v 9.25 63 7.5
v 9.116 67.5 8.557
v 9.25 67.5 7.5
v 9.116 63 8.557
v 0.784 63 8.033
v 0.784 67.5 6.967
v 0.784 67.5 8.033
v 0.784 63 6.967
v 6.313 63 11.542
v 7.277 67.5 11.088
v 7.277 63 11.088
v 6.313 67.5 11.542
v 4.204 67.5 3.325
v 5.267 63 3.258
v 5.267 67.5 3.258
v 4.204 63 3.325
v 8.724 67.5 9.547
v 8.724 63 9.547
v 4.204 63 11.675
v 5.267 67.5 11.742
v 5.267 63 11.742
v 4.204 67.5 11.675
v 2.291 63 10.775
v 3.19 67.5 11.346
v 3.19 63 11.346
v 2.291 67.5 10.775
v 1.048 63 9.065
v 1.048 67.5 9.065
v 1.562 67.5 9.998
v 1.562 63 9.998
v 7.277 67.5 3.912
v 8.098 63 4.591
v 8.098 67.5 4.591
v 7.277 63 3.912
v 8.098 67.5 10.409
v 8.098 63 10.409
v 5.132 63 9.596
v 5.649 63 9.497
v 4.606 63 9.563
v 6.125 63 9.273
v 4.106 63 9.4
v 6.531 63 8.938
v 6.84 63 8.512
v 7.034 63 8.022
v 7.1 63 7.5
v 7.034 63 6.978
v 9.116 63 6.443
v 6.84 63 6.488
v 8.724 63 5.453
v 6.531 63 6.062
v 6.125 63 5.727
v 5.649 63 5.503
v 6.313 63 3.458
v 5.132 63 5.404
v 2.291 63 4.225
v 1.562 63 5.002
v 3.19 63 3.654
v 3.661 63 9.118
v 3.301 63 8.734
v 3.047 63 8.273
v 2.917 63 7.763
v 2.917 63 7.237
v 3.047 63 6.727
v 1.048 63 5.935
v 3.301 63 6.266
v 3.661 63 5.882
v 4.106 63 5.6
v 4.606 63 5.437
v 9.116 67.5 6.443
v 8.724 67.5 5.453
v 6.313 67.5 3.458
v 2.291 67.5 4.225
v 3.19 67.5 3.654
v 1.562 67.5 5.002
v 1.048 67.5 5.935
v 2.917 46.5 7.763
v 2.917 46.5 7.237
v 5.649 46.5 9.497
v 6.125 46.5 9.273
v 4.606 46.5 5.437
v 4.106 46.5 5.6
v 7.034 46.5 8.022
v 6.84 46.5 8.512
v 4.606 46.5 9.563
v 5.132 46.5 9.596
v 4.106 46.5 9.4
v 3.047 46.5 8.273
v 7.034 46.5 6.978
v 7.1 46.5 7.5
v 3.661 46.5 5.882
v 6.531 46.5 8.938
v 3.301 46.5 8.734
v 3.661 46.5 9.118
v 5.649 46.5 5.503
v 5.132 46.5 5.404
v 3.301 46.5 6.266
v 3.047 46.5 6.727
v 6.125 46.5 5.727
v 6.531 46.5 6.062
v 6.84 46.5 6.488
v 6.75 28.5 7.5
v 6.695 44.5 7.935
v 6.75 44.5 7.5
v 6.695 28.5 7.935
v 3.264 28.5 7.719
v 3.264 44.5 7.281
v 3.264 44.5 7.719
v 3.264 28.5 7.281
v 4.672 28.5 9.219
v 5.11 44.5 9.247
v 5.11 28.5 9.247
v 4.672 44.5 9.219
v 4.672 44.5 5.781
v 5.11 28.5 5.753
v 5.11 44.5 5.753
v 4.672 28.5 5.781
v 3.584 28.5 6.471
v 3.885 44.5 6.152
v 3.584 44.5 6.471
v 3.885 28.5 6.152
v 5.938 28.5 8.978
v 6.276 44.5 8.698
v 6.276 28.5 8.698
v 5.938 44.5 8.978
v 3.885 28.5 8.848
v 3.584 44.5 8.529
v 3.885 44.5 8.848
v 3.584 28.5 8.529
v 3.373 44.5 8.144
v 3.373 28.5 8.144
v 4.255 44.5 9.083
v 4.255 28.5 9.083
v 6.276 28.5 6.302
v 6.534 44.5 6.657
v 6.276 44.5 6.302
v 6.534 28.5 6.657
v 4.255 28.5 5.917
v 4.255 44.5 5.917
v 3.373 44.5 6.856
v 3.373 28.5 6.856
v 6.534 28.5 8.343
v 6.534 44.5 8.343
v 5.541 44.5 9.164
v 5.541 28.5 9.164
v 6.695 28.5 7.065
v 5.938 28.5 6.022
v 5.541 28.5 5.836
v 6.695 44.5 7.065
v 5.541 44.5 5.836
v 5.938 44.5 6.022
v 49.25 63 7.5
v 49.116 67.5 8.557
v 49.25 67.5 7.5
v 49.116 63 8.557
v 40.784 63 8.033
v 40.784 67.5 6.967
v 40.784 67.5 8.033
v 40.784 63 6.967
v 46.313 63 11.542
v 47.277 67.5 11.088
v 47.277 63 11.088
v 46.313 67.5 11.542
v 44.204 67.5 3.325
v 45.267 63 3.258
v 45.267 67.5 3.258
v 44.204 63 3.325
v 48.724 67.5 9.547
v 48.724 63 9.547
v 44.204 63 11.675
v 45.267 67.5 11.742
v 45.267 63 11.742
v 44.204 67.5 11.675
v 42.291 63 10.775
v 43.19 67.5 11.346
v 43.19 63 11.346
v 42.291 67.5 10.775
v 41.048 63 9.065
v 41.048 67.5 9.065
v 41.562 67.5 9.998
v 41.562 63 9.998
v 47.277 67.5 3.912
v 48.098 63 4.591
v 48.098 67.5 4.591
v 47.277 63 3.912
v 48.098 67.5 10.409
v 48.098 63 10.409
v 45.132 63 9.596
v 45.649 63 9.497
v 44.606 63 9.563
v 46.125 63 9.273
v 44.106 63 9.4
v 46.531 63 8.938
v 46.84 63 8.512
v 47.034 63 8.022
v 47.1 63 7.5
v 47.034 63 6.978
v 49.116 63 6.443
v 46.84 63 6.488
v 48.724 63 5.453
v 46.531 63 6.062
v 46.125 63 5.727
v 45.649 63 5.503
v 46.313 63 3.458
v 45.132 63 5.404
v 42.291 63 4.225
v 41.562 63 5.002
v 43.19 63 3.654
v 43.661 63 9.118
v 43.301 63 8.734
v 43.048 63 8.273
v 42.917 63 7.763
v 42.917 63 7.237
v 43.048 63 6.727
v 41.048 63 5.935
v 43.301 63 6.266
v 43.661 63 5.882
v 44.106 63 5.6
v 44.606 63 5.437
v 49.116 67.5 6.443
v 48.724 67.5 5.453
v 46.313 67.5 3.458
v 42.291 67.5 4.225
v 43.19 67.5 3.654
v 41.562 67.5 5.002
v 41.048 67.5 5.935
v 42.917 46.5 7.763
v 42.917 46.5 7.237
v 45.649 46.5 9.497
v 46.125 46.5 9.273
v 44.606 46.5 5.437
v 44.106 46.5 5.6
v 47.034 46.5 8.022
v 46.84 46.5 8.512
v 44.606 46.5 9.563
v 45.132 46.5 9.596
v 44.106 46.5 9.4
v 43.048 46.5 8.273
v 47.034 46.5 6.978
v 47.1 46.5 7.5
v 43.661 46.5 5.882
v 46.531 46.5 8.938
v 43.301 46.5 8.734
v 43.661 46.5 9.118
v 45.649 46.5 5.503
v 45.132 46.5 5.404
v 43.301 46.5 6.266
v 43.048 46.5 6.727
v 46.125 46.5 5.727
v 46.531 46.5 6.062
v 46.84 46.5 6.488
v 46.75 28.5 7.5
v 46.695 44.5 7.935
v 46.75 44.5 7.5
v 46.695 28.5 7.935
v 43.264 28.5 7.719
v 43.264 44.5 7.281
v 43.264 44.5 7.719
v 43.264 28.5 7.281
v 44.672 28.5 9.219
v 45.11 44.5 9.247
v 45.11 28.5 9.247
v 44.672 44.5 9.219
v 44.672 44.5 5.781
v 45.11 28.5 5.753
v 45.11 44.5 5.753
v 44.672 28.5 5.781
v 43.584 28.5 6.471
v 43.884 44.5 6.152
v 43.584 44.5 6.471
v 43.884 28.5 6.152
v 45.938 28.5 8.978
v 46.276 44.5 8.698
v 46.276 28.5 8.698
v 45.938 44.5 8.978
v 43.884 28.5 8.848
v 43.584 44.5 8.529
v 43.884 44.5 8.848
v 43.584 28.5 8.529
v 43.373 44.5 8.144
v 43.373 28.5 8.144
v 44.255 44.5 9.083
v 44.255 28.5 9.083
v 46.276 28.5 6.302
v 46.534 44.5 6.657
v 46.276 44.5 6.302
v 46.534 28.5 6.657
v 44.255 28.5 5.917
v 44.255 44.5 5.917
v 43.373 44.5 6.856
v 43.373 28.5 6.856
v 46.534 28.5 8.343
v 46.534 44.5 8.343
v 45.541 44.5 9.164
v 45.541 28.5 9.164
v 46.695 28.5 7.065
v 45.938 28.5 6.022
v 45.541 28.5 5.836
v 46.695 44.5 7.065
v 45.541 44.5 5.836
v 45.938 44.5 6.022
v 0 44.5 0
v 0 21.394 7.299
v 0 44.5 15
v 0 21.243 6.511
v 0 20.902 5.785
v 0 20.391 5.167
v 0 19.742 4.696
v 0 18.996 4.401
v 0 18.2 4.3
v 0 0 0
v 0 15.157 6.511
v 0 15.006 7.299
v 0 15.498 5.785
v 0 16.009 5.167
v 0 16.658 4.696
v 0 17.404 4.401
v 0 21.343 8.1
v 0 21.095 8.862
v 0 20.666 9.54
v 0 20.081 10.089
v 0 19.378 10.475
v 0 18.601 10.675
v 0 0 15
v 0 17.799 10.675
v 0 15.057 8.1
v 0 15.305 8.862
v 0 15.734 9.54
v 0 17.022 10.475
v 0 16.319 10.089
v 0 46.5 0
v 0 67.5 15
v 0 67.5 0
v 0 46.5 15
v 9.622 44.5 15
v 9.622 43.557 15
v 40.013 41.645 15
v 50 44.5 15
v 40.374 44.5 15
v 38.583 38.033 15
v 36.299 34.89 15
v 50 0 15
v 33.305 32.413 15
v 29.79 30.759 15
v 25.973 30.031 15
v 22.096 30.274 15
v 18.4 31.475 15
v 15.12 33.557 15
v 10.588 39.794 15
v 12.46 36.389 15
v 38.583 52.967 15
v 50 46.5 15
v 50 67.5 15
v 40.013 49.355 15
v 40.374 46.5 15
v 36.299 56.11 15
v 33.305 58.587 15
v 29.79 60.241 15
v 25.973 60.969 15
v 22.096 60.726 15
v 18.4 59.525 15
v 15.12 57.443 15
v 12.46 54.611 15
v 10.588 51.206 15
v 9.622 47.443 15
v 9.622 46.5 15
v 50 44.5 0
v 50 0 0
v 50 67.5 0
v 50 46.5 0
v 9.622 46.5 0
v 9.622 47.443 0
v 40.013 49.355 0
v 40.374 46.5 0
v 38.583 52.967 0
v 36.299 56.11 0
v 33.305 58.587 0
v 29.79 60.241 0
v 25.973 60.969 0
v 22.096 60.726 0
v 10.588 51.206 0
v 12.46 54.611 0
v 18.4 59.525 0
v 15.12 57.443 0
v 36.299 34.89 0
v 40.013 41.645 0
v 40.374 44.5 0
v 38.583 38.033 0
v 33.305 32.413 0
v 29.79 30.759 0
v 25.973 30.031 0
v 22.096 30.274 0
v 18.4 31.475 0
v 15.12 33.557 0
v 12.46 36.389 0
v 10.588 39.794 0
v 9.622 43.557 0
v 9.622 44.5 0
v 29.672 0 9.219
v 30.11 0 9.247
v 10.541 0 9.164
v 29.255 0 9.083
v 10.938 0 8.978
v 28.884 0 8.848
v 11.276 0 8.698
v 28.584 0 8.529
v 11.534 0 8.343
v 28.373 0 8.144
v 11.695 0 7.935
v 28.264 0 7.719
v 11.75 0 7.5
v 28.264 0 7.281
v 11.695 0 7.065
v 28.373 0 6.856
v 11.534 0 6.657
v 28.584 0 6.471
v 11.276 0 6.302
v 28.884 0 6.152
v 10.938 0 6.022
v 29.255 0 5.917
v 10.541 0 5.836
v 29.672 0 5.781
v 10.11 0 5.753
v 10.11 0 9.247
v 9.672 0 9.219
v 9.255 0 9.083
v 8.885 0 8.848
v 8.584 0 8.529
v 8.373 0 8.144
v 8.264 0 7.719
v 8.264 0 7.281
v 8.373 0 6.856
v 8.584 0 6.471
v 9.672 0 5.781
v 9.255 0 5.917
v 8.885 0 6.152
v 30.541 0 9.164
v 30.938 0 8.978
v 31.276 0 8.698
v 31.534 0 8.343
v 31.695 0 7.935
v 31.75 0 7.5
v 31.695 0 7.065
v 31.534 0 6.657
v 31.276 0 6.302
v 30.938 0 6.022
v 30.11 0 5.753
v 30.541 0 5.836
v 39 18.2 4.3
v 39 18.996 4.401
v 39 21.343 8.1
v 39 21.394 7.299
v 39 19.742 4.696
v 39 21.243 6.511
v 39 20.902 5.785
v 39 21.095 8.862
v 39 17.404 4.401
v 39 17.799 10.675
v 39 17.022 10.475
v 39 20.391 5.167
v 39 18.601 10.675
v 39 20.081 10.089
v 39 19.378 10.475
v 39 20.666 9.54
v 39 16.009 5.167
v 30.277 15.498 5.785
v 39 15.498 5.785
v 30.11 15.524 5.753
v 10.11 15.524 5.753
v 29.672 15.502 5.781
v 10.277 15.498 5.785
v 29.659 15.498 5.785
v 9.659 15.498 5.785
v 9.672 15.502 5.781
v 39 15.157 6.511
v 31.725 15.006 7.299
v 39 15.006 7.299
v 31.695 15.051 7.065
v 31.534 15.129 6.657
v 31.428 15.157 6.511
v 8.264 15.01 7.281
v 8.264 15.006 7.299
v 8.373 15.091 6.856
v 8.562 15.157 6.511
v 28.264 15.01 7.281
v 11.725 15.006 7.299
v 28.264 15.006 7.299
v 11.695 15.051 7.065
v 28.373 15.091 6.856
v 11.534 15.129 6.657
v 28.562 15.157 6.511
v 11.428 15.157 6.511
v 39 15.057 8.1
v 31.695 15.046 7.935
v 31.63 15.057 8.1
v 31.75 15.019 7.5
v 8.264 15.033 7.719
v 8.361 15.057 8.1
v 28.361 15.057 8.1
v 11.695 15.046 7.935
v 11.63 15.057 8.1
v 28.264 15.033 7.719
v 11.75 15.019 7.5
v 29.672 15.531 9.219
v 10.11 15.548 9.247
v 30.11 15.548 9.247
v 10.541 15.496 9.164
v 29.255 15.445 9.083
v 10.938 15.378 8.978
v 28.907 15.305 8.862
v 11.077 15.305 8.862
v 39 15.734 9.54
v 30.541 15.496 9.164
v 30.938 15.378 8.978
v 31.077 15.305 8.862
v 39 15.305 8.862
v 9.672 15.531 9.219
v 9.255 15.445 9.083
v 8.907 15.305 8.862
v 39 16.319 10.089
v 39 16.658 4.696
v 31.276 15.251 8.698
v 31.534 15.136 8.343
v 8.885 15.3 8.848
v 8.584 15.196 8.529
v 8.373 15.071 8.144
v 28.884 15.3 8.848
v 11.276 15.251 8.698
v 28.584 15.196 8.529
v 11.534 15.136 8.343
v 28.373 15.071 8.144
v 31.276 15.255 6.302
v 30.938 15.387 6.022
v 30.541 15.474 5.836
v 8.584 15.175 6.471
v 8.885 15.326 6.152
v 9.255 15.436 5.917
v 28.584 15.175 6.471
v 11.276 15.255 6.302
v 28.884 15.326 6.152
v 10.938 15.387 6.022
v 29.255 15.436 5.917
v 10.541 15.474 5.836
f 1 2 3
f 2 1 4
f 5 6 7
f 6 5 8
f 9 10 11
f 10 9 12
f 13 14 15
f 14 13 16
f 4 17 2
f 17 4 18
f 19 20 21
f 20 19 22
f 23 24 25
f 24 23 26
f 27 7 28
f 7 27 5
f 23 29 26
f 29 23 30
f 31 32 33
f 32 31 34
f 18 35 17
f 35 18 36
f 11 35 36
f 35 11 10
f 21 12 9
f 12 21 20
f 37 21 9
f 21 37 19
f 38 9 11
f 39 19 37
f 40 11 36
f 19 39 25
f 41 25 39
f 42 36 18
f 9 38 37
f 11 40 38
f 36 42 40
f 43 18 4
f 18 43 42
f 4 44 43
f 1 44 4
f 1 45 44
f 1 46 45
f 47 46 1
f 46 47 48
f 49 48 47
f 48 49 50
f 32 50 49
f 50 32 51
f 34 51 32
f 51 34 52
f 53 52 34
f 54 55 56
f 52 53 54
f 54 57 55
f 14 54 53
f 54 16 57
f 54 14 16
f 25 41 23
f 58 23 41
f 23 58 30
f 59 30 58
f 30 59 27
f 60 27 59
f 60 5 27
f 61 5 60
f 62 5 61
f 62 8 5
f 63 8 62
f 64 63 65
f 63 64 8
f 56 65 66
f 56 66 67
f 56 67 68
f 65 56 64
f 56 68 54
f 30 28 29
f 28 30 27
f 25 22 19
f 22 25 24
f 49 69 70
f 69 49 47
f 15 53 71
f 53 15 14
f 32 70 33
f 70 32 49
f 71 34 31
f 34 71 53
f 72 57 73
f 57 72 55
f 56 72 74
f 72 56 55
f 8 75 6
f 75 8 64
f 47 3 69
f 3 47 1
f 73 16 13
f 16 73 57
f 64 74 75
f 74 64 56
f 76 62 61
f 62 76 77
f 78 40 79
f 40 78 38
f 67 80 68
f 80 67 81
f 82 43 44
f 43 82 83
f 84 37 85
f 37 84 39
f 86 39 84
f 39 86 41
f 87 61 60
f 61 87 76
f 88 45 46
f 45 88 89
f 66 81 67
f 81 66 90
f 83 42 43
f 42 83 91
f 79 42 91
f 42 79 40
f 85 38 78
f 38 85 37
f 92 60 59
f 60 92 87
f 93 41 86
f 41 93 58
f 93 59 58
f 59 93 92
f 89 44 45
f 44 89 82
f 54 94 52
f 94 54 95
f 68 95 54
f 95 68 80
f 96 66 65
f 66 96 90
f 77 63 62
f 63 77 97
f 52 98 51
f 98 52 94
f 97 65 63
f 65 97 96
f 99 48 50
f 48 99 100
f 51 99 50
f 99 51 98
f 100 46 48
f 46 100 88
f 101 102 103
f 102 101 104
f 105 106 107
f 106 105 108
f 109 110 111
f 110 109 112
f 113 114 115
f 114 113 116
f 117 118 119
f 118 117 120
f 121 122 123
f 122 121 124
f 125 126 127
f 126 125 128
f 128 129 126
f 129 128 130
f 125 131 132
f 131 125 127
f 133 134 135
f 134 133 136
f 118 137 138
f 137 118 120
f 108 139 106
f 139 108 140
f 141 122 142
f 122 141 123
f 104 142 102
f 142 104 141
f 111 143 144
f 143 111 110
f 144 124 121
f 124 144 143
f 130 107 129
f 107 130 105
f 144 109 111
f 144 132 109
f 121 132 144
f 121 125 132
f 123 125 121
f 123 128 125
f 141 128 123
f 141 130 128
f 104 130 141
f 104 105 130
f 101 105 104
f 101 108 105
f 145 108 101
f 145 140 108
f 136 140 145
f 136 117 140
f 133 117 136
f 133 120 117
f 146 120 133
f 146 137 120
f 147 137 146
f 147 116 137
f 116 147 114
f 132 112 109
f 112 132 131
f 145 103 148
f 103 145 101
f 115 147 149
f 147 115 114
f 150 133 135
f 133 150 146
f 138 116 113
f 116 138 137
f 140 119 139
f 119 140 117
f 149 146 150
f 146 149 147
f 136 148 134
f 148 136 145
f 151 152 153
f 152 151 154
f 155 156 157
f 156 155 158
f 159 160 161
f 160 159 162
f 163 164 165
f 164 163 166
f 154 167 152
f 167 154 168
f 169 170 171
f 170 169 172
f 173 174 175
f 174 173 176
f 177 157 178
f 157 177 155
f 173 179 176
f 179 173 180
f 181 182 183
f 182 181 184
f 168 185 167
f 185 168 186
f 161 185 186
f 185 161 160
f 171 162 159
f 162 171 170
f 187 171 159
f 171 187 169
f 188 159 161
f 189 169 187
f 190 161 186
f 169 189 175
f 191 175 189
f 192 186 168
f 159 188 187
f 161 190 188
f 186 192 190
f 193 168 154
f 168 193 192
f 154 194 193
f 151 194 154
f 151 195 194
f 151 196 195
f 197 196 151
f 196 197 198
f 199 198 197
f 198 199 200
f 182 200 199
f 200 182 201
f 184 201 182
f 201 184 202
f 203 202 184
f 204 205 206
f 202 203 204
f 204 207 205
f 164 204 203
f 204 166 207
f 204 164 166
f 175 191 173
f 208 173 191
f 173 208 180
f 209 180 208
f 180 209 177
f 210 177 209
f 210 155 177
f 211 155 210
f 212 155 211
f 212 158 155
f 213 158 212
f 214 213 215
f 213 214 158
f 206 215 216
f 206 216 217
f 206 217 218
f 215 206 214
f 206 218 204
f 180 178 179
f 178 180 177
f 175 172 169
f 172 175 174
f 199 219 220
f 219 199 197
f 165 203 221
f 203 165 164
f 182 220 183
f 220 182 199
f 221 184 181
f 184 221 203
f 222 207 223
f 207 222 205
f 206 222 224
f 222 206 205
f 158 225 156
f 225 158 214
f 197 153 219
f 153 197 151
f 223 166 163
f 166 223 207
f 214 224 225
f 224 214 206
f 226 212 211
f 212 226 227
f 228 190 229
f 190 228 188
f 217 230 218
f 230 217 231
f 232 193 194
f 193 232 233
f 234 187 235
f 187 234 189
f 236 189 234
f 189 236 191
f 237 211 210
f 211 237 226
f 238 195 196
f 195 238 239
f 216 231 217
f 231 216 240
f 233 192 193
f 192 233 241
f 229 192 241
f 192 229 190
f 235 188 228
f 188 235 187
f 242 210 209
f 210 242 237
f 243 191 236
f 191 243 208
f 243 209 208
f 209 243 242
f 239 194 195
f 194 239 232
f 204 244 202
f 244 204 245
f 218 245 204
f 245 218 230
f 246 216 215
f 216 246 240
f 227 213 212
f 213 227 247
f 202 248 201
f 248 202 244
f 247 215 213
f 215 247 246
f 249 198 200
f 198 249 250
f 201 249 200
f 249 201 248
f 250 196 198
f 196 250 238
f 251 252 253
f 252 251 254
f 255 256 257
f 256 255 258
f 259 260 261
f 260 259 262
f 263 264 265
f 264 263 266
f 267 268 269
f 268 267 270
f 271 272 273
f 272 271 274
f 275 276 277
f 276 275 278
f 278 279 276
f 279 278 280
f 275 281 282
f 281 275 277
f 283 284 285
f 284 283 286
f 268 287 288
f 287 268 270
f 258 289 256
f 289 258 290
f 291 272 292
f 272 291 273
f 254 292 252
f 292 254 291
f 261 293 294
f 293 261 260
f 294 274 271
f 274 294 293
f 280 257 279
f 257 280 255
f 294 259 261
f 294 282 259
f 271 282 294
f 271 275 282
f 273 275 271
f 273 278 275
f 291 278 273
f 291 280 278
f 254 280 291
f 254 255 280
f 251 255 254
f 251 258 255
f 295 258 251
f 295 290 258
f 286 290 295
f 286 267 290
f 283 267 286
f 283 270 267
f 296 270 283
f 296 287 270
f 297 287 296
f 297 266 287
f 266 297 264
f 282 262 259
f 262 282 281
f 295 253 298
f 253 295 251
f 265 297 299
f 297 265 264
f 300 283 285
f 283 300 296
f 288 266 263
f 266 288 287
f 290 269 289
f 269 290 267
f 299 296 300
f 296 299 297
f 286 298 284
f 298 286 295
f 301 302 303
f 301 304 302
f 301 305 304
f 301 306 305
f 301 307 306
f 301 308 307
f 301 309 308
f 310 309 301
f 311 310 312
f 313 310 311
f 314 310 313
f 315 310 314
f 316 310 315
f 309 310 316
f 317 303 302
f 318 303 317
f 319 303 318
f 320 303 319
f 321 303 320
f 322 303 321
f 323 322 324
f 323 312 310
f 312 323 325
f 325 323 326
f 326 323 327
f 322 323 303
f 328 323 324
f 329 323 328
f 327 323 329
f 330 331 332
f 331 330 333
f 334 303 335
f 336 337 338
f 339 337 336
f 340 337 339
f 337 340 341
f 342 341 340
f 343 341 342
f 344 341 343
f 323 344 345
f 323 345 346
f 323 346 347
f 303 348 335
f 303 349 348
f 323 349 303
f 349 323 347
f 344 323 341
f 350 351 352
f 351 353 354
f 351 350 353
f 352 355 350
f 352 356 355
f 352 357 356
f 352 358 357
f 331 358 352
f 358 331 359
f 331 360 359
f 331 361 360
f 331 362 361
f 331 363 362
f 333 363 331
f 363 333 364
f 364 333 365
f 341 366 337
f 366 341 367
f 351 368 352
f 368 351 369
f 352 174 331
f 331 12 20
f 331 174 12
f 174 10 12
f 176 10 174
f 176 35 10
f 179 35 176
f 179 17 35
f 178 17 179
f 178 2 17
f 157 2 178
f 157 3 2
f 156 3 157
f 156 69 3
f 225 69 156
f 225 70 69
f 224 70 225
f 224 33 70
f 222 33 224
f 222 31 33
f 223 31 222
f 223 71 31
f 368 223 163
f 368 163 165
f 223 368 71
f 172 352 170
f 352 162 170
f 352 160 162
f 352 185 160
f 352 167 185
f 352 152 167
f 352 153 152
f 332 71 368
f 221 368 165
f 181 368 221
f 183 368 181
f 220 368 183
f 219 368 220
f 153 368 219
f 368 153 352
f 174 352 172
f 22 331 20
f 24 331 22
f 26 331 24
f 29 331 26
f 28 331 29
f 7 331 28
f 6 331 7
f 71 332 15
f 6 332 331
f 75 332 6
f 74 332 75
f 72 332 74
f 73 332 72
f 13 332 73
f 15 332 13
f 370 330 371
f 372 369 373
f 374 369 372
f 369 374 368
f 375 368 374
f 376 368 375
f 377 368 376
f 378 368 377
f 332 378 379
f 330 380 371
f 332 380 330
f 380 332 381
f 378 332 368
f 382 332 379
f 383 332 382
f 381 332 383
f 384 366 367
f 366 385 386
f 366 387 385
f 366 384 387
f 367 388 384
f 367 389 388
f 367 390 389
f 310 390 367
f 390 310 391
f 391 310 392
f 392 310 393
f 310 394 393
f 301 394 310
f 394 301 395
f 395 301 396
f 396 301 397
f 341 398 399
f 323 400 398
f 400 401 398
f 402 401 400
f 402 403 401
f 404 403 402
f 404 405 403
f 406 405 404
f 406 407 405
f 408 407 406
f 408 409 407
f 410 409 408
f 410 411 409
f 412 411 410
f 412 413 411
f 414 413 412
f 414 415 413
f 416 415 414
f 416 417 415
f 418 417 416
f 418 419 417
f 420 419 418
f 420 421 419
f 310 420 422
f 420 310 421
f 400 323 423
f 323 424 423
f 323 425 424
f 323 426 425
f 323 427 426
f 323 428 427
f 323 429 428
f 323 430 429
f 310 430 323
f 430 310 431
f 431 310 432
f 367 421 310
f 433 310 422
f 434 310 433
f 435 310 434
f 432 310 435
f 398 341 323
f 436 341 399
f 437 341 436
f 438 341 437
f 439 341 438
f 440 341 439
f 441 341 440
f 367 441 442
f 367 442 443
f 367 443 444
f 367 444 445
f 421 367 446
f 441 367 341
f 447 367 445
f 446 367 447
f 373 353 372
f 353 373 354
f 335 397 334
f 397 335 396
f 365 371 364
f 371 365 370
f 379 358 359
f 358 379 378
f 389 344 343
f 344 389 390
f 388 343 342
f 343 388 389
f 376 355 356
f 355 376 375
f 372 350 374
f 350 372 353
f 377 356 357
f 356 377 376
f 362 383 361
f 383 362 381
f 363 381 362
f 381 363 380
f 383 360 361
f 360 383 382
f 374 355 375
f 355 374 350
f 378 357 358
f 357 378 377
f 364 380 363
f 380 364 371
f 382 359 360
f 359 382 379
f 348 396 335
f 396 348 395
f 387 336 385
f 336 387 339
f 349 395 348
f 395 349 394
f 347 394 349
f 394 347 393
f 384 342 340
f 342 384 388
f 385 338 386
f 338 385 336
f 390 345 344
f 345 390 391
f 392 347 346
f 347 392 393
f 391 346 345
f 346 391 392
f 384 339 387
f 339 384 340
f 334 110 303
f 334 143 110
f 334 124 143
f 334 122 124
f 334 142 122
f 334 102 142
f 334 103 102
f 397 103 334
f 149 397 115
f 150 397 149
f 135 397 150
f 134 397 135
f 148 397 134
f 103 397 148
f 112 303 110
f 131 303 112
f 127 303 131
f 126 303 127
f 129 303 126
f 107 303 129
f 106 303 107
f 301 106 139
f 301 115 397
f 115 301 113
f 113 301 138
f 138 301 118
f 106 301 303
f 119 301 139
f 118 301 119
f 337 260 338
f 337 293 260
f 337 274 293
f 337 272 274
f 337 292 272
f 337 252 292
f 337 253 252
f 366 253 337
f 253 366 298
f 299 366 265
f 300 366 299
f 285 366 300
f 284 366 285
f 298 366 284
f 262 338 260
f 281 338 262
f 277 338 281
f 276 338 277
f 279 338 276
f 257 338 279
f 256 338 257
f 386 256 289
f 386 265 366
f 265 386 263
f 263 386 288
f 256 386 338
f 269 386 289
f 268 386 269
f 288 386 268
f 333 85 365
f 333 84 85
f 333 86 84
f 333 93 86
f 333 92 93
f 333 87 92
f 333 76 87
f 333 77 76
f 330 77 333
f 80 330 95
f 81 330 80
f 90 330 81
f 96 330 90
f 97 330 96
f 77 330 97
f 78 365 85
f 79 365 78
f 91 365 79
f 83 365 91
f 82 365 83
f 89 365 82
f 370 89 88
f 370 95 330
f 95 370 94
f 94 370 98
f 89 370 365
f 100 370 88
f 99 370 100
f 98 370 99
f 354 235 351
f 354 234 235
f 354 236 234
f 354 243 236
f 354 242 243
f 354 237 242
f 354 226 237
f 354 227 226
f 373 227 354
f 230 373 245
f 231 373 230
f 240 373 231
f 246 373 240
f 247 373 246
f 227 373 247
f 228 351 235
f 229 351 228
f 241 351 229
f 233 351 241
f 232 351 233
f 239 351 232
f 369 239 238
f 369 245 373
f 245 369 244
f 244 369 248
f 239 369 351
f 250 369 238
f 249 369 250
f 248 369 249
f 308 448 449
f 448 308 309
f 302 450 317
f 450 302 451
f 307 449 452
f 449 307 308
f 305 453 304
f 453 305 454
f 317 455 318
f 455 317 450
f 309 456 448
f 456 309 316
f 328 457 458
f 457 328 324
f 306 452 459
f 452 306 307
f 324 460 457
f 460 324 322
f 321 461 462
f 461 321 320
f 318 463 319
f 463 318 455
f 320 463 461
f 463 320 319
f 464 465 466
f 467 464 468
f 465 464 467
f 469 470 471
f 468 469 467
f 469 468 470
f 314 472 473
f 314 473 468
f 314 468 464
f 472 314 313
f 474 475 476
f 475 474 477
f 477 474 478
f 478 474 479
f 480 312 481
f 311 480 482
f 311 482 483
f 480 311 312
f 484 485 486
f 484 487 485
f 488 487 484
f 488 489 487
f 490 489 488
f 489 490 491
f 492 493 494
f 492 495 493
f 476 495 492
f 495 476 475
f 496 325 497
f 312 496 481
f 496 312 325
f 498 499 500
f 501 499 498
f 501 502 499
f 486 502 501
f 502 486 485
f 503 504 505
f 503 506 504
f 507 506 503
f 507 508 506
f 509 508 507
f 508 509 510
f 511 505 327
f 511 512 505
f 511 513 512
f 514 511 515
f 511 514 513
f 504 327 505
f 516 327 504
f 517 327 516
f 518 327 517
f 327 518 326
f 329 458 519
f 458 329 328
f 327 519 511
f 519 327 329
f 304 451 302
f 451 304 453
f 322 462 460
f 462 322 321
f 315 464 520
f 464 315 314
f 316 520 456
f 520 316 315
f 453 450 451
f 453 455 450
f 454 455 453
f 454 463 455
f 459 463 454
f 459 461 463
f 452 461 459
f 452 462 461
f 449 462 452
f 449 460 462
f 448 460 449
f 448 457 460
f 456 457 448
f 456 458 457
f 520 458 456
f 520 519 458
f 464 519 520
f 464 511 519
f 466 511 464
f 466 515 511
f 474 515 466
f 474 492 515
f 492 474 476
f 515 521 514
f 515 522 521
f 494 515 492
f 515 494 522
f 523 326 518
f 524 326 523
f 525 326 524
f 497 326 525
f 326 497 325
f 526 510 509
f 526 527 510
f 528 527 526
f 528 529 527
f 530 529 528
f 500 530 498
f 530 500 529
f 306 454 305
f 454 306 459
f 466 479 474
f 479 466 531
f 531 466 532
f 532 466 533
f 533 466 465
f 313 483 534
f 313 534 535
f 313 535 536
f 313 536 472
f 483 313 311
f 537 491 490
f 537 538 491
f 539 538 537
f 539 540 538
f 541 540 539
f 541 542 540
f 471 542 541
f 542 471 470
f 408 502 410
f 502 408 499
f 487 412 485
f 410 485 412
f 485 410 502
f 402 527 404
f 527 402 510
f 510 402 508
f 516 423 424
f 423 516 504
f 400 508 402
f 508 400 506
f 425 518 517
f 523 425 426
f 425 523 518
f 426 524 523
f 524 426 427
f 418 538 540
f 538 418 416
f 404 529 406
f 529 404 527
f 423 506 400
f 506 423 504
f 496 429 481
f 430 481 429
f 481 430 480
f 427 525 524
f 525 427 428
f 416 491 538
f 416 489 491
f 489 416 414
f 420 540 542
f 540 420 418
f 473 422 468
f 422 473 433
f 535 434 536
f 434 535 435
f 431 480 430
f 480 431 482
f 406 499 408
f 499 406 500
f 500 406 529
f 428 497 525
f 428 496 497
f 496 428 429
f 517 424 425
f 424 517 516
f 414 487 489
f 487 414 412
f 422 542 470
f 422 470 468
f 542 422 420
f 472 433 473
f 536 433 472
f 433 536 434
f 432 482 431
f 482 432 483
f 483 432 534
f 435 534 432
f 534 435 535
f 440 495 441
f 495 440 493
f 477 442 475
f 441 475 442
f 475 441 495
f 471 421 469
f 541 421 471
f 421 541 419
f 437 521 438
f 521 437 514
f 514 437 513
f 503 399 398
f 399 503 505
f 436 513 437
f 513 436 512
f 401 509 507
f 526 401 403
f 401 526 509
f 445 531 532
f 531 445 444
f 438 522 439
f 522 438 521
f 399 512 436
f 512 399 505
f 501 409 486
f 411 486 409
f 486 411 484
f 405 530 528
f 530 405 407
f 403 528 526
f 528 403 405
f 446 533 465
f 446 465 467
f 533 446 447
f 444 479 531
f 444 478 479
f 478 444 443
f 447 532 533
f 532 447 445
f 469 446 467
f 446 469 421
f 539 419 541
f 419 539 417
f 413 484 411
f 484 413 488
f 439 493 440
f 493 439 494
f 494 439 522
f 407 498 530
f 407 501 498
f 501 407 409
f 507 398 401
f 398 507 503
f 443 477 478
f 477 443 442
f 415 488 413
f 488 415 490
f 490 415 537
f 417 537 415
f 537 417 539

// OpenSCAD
height = 67.5;
width = 50.0;
depth = 15.0;
large_hole = 31.0;
small_hole = 6.4;
large_hole_off = 6.5;
small_hole_off = 15.0;
small_hole_depth = 39.0;
screw_large = 4.2;
screw_small = 3.5;
screw_head = 8.5;
screw_head_depth = 4.5;
screw_large_depth = 23.0;
screw_small_depth = 40.0;
screw_off = 5.0;
gap = 2.0;

$fn = 25;

difference() {
    cube([width, height, depth]);
    
    translate([width / 2, height - (large_hole / 2) - large_hole_off, -1])
    cylinder(d = large_hole, h = depth + 2);
    
    translate([-1, height - (large_hole / 2) - large_hole_off - (gap / 2), -1])
    cube([width + 2, gap, depth + 2]);
    
    translate([-1, (small_hole / 2) + small_hole_off, depth / 2])
    rotate([0, 90, 0])
    cylinder(d = small_hole, h = small_hole_depth + 1);
    
    translate([10, (small_hole / 2) + small_hole_off, depth / 2])
    rotate([90, 0, 0])
    cylinder(d = screw_small, h = small_hole_depth + 1);
    
    translate([30, (small_hole / 2) + small_hole_off, depth / 2])
    rotate([90, 0, 0])
    cylinder(d = screw_small, h = small_hole_depth + 1);
    
    translate([screw_off, height + 1, depth / 2])
    rotate([90, 0, 0]) {
        cylinder(d = screw_head, h = screw_head_depth + 1);
        cylinder(d = screw_large, h = screw_large_depth);
        cylinder(d = screw_small, h = screw_small_depth);
    }
    
    translate([width - screw_off, height + 1, depth / 2])
    rotate([90, 0, 0]) {
        cylinder(d = screw_head, h = screw_head_depth + 1);
        cylinder(d = screw_large, h = screw_large_depth);
        cylinder(d = screw_small, h = screw_small_depth);
    }
}
